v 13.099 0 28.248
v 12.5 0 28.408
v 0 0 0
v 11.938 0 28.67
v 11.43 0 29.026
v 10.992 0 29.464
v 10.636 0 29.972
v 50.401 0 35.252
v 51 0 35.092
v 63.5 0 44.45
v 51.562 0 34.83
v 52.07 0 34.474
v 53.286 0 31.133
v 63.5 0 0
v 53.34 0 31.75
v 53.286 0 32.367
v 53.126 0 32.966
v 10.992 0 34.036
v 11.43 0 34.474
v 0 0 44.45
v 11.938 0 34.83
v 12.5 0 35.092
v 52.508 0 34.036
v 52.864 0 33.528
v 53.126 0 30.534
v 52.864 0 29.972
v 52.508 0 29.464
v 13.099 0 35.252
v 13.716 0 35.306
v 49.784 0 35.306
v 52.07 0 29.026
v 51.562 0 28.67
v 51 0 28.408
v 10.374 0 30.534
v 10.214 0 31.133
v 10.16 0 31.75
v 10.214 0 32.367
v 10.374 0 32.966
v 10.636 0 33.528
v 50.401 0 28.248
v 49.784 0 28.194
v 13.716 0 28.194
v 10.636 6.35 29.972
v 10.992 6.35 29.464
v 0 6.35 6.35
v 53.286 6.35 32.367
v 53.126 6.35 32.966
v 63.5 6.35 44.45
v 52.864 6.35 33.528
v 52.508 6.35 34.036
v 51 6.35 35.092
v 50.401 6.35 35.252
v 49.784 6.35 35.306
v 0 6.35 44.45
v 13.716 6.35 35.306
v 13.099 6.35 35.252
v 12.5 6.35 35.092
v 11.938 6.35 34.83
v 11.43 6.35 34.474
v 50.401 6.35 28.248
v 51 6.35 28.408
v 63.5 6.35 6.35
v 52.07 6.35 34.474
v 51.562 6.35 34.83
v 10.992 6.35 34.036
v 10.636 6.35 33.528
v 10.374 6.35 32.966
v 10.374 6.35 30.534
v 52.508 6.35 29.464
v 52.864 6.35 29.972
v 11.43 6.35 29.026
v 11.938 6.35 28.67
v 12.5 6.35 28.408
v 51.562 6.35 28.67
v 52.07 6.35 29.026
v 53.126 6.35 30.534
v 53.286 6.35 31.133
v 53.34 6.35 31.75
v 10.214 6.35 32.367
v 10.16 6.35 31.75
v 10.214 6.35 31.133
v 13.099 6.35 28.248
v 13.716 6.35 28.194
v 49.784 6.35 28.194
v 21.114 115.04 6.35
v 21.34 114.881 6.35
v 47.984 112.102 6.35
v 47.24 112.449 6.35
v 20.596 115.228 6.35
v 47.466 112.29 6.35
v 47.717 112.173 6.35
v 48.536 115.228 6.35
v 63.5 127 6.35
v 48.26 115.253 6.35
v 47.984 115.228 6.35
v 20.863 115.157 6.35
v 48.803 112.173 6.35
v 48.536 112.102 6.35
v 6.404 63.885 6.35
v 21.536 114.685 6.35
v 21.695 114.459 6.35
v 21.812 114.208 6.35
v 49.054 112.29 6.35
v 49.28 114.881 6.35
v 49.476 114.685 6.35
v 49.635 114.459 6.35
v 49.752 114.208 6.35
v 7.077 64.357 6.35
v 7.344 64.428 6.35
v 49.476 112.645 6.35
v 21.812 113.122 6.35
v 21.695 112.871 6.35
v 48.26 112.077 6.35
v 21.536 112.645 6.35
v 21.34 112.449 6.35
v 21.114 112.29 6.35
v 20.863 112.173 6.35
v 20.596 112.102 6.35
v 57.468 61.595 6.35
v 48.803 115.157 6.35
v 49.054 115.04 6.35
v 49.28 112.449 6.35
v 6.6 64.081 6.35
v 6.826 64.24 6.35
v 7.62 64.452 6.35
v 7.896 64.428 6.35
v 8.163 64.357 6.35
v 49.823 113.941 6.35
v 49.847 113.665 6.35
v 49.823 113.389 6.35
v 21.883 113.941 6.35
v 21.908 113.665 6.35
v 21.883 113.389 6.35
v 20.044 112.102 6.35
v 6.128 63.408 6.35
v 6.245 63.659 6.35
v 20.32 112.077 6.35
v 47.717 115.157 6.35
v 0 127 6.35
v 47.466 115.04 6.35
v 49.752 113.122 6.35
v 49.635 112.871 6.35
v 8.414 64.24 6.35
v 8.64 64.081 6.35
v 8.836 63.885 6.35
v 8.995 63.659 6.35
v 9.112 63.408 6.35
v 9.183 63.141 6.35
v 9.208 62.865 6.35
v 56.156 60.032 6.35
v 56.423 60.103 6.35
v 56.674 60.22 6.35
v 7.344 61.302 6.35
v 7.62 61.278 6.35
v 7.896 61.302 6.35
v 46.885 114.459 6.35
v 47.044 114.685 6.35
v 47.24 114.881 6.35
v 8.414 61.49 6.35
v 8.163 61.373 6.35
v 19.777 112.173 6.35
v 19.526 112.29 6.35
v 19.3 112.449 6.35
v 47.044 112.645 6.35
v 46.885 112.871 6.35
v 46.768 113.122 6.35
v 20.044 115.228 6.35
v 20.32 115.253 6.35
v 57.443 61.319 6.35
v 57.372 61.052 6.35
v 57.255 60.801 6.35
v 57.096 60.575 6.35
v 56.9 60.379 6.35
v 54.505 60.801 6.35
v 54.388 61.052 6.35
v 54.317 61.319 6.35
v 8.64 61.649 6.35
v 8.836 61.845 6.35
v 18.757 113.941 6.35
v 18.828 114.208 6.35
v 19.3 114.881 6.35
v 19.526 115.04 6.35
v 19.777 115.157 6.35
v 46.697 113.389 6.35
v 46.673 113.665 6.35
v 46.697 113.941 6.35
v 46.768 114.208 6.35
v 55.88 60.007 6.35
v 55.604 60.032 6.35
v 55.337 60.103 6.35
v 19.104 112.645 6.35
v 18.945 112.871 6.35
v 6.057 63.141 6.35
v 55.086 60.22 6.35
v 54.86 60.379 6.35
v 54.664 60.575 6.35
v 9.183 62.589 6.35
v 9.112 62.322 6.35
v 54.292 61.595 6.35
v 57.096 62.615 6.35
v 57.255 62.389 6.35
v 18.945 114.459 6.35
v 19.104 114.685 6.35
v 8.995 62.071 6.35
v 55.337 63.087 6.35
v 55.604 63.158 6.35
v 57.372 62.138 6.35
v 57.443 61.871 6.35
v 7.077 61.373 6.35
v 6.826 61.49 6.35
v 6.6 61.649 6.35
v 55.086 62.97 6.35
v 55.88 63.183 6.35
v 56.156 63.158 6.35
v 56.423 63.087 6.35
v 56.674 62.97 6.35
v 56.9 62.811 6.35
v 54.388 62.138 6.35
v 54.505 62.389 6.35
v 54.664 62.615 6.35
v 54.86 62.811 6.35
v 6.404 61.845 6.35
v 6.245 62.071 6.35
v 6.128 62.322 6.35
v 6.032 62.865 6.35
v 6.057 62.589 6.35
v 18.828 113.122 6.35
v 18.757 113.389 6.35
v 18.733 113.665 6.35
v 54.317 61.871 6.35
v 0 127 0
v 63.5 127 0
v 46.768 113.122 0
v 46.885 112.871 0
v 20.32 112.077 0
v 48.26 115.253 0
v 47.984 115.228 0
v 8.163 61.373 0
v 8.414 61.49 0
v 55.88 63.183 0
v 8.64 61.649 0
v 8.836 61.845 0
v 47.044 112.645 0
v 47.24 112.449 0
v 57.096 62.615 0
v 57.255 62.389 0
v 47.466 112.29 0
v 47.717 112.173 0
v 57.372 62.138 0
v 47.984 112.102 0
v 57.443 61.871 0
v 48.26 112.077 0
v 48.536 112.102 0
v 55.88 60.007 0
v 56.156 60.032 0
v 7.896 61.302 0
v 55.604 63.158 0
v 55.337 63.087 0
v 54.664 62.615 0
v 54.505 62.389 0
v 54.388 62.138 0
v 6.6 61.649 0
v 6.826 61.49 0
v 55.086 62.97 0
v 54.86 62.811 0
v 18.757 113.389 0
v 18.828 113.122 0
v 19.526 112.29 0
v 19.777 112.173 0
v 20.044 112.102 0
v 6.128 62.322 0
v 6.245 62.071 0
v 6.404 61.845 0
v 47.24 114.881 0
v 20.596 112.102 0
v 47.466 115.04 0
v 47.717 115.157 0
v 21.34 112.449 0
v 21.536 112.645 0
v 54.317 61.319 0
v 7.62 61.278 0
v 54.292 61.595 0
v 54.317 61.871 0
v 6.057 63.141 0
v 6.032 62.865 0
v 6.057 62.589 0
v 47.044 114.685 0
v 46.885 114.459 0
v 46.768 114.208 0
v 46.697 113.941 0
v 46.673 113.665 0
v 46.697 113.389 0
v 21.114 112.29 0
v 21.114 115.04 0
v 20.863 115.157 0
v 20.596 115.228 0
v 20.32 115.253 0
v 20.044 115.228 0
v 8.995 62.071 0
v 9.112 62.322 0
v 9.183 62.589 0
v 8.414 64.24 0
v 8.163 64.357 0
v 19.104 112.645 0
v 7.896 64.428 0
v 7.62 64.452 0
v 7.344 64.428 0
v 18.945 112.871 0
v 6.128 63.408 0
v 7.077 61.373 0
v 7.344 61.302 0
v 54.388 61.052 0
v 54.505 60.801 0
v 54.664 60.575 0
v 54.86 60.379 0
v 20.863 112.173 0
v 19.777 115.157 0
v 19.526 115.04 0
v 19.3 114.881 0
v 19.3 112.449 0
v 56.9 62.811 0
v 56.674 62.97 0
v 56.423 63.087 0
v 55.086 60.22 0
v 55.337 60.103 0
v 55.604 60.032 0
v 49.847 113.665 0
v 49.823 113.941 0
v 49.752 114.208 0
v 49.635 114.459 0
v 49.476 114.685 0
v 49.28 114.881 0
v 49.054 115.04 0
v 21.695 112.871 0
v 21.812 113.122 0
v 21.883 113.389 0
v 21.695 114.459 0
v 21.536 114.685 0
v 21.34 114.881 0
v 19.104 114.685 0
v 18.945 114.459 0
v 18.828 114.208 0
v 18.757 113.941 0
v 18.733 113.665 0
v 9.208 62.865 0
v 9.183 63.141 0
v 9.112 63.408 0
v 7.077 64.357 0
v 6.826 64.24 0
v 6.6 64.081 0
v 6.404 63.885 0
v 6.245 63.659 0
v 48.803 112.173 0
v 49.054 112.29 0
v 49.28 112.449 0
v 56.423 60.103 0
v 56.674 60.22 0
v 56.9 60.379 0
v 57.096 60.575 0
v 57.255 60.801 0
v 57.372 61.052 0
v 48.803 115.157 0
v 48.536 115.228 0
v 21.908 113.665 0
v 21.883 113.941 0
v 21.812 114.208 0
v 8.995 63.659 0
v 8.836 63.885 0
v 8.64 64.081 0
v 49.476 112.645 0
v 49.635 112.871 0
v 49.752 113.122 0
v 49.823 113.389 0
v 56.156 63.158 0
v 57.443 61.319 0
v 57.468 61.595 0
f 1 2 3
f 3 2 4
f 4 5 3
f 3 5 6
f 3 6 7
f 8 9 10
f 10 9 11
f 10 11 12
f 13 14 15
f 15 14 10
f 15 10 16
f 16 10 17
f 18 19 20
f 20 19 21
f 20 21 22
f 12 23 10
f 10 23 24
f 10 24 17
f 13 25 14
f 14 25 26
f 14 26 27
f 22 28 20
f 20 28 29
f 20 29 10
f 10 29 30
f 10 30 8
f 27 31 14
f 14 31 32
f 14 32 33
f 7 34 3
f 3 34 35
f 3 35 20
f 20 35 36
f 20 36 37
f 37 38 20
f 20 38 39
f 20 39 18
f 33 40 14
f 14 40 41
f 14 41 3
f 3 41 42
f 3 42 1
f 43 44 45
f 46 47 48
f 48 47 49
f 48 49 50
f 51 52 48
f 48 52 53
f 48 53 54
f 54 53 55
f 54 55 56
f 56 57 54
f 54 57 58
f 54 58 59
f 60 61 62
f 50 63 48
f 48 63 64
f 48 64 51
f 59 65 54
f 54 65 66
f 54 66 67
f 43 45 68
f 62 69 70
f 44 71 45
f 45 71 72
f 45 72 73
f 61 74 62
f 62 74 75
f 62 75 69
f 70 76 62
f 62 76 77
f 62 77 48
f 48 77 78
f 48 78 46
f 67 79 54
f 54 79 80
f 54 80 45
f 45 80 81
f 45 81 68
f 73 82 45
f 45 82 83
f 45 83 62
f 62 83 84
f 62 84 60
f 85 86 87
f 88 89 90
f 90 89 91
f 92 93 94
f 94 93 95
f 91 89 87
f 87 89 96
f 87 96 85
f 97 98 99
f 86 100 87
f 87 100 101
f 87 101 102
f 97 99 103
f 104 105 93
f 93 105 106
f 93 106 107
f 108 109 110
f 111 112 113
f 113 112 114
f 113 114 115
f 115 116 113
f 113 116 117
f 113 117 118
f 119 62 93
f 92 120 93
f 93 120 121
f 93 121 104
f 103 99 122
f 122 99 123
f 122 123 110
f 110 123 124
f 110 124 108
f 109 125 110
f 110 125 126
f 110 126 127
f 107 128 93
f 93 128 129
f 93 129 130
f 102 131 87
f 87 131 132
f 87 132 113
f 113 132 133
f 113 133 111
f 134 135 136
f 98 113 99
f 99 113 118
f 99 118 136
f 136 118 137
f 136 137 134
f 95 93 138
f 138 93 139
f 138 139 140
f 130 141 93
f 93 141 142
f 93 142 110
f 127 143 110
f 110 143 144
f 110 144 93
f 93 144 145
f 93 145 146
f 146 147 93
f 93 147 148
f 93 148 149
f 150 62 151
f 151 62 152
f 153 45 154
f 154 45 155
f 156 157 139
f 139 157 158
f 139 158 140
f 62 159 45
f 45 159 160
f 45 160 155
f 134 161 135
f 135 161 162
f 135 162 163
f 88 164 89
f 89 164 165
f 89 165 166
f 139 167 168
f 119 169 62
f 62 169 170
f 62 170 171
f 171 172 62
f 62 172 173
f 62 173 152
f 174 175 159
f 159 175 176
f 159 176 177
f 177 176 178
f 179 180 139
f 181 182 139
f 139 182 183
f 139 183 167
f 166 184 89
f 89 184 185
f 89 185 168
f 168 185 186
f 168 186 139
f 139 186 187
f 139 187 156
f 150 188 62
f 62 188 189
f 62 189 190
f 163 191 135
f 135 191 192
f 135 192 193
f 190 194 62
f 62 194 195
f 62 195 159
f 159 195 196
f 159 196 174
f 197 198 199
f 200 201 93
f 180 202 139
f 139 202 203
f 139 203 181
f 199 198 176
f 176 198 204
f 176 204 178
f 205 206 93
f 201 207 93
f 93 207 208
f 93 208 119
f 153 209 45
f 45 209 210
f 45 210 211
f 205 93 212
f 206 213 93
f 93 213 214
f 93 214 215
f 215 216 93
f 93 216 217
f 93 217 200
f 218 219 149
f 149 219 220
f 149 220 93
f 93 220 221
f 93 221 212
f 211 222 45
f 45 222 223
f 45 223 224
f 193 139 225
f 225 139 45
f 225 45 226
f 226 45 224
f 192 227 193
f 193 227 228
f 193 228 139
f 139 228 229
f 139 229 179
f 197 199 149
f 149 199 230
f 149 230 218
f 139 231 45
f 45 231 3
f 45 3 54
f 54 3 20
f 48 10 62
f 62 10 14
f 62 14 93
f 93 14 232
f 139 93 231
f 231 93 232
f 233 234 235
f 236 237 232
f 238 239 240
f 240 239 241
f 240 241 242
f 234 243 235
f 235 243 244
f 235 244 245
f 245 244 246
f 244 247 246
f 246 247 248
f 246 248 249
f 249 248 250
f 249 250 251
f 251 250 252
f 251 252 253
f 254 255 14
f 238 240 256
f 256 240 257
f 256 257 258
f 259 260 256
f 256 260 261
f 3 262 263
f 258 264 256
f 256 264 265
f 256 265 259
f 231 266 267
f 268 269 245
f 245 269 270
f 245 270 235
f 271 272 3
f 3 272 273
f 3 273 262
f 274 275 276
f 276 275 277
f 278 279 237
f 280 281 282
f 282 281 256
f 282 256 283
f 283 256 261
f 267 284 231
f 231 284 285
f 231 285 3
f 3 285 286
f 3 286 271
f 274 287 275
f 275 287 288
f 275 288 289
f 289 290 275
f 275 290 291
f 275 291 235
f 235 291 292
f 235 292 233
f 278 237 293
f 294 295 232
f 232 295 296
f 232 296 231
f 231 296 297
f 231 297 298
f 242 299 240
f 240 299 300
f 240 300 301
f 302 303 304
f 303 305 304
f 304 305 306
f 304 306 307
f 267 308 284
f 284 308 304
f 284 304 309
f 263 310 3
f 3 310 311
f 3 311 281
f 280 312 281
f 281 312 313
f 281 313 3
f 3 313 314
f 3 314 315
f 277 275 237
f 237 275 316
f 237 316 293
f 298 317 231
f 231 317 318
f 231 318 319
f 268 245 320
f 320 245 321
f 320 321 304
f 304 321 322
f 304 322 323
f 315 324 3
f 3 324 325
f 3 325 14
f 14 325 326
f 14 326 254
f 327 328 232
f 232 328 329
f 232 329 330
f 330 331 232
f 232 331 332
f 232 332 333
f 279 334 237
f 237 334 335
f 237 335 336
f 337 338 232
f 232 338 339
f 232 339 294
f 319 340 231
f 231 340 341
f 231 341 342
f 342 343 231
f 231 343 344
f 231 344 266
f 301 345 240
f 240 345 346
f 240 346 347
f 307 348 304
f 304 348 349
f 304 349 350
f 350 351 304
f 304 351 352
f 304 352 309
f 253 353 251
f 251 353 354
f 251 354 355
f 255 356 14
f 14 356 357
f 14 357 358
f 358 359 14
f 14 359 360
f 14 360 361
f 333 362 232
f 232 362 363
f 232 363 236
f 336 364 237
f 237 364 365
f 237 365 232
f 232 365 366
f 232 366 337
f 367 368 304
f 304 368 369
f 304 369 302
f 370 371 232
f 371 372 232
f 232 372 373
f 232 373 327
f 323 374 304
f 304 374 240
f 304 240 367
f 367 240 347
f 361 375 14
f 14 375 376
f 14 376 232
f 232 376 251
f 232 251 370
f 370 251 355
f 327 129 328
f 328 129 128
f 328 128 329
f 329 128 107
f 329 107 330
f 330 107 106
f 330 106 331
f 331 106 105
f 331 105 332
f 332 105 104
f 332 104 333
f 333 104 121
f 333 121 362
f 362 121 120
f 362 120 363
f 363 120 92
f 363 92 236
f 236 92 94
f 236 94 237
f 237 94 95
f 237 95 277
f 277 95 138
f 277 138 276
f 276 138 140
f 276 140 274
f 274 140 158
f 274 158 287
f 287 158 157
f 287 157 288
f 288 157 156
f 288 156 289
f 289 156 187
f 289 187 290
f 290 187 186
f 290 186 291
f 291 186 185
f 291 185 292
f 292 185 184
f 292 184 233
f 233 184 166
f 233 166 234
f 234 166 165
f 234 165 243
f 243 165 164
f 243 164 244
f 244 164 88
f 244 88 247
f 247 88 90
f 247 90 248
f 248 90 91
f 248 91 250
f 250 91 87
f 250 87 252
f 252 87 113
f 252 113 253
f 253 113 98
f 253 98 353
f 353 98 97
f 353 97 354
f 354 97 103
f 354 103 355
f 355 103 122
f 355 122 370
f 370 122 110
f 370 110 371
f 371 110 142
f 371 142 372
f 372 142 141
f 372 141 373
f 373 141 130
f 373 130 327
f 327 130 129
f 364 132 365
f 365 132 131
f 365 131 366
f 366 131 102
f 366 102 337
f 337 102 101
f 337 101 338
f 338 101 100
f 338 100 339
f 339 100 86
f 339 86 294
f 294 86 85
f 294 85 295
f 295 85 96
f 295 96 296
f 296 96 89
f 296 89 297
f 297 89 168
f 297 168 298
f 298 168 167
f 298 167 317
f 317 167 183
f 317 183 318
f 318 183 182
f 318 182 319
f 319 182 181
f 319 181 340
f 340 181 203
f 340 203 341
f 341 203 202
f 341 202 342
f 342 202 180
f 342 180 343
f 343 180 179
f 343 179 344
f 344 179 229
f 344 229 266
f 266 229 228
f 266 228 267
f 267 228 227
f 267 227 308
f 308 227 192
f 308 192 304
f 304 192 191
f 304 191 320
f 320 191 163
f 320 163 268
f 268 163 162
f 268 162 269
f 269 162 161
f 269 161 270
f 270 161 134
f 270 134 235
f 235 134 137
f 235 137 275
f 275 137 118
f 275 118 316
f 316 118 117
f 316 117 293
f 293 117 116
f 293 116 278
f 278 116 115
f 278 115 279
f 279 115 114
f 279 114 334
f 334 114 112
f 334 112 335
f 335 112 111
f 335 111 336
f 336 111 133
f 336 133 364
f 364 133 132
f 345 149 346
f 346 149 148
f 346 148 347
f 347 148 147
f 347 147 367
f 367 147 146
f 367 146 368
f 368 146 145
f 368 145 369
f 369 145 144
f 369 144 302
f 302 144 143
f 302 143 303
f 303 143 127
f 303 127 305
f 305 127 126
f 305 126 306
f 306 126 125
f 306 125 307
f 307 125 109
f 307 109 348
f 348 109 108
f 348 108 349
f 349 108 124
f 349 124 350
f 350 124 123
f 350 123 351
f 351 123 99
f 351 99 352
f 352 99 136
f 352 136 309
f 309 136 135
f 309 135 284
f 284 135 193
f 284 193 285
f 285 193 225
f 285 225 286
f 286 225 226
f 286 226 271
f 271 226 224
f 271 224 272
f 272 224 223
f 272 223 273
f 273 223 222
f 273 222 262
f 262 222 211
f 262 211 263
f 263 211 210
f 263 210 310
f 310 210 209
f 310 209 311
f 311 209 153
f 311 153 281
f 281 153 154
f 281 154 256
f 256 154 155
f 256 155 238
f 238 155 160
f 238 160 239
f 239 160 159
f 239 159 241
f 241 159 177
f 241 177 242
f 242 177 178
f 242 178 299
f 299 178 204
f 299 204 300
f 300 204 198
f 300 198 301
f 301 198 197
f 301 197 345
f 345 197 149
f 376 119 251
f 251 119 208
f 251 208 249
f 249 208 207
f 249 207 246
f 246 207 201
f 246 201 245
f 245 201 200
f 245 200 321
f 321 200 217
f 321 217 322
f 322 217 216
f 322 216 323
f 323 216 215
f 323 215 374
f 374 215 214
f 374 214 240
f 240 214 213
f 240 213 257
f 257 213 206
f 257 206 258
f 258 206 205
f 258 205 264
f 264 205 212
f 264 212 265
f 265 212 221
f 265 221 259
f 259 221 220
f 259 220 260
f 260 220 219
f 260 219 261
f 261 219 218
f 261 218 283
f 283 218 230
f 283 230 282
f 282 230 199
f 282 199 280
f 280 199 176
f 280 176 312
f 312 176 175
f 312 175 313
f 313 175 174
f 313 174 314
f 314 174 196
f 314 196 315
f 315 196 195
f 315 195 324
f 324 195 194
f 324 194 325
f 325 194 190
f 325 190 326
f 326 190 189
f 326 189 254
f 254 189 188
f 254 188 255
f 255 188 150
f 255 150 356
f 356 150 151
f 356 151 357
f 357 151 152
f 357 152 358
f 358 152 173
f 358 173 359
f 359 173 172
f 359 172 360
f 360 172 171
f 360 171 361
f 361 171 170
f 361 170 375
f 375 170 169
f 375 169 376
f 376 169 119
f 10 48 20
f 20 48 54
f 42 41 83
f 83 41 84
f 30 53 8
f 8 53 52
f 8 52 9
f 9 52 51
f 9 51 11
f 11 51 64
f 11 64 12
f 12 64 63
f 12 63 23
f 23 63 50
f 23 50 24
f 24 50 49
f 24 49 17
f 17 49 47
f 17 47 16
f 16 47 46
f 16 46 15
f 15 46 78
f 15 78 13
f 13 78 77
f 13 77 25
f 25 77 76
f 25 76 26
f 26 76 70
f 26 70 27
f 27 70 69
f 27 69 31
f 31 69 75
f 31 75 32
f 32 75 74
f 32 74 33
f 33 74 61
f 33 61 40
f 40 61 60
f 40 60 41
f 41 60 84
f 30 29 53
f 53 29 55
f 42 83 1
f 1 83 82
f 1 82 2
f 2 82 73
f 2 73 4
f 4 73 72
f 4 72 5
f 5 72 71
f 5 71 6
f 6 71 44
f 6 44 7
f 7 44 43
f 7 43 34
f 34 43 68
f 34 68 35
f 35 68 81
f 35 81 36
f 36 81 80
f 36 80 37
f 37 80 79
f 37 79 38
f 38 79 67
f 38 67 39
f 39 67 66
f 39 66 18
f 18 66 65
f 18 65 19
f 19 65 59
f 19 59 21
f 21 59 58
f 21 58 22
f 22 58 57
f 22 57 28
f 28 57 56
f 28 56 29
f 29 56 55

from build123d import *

# Parameters (mm, degrees)
SKETCH1_W           = 63.5
SKETCH1_H           = 127
BOSS_EXTRUDE1_DEPTH = 6.35
SKETCH2_R           = 1.5875
CUT_EXTRUDE1_DEPTH  = 143.132235964
SKETCH3_W           = 63.5
SKETCH3_H           = 6.35
BOSS_EXTRUDE2_DEPTH = 38.1
CUT_EXTRUDE2_DEPTH  = 144.403190341


with BuildPart() as part:
    # Sketch1 → Boss-Extrude1 (new body)
    with BuildSketch(Plane.XY):
        with Locations((31.75, 63.5)):
            Rectangle(SKETCH1_W, SKETCH1_H)
    extrude(amount=BOSS_EXTRUDE1_DEPTH)

    # Sketch2 → Cut-Extrude1 (cut, through all)
    with BuildSketch(Plane.XY.offset(6.35)):
        with Locations((55.88, 61.595)):
            Circle(SKETCH2_R)
        with Locations((7.62, 62.865)):
            Circle(SKETCH2_R)
        with Locations((20.32, 113.665)):
            Circle(SKETCH2_R)
        with Locations((48.26, 113.665)):
            Circle(SKETCH2_R)
    extrude(amount=-CUT_EXTRUDE1_DEPTH, mode=Mode.SUBTRACT)

    # Sketch3 → Boss-Extrude2 (add)
    with BuildSketch(Plane.XY.offset(6.35)):
        with Locations((31.75, 3.175)):
            Rectangle(SKETCH3_W, SKETCH3_H)
    extrude(amount=BOSS_EXTRUDE2_DEPTH)

    # Sketch4 → Cut-Extrude2 (cut, through all)
    with BuildSketch(Plane(origin=(0, 6.35, 0), x_dir=(1, 0, 0), z_dir=(0, 1, 0))):
        with BuildLine():
            Line((13.716, -28.194), (49.784, -28.194))
            ThreePointArc((49.784, -28.194), (53.34, -31.75), (49.784, -35.306))
            Line((49.784, -35.306), (13.716, -35.306))
            ThreePointArc((13.716, -35.306), (10.16, -31.75), (13.716, -28.194))
        make_face()
    extrude(amount=-CUT_EXTRUDE2_DEPTH, mode=Mode.SUBTRACT)


solid = part.part
